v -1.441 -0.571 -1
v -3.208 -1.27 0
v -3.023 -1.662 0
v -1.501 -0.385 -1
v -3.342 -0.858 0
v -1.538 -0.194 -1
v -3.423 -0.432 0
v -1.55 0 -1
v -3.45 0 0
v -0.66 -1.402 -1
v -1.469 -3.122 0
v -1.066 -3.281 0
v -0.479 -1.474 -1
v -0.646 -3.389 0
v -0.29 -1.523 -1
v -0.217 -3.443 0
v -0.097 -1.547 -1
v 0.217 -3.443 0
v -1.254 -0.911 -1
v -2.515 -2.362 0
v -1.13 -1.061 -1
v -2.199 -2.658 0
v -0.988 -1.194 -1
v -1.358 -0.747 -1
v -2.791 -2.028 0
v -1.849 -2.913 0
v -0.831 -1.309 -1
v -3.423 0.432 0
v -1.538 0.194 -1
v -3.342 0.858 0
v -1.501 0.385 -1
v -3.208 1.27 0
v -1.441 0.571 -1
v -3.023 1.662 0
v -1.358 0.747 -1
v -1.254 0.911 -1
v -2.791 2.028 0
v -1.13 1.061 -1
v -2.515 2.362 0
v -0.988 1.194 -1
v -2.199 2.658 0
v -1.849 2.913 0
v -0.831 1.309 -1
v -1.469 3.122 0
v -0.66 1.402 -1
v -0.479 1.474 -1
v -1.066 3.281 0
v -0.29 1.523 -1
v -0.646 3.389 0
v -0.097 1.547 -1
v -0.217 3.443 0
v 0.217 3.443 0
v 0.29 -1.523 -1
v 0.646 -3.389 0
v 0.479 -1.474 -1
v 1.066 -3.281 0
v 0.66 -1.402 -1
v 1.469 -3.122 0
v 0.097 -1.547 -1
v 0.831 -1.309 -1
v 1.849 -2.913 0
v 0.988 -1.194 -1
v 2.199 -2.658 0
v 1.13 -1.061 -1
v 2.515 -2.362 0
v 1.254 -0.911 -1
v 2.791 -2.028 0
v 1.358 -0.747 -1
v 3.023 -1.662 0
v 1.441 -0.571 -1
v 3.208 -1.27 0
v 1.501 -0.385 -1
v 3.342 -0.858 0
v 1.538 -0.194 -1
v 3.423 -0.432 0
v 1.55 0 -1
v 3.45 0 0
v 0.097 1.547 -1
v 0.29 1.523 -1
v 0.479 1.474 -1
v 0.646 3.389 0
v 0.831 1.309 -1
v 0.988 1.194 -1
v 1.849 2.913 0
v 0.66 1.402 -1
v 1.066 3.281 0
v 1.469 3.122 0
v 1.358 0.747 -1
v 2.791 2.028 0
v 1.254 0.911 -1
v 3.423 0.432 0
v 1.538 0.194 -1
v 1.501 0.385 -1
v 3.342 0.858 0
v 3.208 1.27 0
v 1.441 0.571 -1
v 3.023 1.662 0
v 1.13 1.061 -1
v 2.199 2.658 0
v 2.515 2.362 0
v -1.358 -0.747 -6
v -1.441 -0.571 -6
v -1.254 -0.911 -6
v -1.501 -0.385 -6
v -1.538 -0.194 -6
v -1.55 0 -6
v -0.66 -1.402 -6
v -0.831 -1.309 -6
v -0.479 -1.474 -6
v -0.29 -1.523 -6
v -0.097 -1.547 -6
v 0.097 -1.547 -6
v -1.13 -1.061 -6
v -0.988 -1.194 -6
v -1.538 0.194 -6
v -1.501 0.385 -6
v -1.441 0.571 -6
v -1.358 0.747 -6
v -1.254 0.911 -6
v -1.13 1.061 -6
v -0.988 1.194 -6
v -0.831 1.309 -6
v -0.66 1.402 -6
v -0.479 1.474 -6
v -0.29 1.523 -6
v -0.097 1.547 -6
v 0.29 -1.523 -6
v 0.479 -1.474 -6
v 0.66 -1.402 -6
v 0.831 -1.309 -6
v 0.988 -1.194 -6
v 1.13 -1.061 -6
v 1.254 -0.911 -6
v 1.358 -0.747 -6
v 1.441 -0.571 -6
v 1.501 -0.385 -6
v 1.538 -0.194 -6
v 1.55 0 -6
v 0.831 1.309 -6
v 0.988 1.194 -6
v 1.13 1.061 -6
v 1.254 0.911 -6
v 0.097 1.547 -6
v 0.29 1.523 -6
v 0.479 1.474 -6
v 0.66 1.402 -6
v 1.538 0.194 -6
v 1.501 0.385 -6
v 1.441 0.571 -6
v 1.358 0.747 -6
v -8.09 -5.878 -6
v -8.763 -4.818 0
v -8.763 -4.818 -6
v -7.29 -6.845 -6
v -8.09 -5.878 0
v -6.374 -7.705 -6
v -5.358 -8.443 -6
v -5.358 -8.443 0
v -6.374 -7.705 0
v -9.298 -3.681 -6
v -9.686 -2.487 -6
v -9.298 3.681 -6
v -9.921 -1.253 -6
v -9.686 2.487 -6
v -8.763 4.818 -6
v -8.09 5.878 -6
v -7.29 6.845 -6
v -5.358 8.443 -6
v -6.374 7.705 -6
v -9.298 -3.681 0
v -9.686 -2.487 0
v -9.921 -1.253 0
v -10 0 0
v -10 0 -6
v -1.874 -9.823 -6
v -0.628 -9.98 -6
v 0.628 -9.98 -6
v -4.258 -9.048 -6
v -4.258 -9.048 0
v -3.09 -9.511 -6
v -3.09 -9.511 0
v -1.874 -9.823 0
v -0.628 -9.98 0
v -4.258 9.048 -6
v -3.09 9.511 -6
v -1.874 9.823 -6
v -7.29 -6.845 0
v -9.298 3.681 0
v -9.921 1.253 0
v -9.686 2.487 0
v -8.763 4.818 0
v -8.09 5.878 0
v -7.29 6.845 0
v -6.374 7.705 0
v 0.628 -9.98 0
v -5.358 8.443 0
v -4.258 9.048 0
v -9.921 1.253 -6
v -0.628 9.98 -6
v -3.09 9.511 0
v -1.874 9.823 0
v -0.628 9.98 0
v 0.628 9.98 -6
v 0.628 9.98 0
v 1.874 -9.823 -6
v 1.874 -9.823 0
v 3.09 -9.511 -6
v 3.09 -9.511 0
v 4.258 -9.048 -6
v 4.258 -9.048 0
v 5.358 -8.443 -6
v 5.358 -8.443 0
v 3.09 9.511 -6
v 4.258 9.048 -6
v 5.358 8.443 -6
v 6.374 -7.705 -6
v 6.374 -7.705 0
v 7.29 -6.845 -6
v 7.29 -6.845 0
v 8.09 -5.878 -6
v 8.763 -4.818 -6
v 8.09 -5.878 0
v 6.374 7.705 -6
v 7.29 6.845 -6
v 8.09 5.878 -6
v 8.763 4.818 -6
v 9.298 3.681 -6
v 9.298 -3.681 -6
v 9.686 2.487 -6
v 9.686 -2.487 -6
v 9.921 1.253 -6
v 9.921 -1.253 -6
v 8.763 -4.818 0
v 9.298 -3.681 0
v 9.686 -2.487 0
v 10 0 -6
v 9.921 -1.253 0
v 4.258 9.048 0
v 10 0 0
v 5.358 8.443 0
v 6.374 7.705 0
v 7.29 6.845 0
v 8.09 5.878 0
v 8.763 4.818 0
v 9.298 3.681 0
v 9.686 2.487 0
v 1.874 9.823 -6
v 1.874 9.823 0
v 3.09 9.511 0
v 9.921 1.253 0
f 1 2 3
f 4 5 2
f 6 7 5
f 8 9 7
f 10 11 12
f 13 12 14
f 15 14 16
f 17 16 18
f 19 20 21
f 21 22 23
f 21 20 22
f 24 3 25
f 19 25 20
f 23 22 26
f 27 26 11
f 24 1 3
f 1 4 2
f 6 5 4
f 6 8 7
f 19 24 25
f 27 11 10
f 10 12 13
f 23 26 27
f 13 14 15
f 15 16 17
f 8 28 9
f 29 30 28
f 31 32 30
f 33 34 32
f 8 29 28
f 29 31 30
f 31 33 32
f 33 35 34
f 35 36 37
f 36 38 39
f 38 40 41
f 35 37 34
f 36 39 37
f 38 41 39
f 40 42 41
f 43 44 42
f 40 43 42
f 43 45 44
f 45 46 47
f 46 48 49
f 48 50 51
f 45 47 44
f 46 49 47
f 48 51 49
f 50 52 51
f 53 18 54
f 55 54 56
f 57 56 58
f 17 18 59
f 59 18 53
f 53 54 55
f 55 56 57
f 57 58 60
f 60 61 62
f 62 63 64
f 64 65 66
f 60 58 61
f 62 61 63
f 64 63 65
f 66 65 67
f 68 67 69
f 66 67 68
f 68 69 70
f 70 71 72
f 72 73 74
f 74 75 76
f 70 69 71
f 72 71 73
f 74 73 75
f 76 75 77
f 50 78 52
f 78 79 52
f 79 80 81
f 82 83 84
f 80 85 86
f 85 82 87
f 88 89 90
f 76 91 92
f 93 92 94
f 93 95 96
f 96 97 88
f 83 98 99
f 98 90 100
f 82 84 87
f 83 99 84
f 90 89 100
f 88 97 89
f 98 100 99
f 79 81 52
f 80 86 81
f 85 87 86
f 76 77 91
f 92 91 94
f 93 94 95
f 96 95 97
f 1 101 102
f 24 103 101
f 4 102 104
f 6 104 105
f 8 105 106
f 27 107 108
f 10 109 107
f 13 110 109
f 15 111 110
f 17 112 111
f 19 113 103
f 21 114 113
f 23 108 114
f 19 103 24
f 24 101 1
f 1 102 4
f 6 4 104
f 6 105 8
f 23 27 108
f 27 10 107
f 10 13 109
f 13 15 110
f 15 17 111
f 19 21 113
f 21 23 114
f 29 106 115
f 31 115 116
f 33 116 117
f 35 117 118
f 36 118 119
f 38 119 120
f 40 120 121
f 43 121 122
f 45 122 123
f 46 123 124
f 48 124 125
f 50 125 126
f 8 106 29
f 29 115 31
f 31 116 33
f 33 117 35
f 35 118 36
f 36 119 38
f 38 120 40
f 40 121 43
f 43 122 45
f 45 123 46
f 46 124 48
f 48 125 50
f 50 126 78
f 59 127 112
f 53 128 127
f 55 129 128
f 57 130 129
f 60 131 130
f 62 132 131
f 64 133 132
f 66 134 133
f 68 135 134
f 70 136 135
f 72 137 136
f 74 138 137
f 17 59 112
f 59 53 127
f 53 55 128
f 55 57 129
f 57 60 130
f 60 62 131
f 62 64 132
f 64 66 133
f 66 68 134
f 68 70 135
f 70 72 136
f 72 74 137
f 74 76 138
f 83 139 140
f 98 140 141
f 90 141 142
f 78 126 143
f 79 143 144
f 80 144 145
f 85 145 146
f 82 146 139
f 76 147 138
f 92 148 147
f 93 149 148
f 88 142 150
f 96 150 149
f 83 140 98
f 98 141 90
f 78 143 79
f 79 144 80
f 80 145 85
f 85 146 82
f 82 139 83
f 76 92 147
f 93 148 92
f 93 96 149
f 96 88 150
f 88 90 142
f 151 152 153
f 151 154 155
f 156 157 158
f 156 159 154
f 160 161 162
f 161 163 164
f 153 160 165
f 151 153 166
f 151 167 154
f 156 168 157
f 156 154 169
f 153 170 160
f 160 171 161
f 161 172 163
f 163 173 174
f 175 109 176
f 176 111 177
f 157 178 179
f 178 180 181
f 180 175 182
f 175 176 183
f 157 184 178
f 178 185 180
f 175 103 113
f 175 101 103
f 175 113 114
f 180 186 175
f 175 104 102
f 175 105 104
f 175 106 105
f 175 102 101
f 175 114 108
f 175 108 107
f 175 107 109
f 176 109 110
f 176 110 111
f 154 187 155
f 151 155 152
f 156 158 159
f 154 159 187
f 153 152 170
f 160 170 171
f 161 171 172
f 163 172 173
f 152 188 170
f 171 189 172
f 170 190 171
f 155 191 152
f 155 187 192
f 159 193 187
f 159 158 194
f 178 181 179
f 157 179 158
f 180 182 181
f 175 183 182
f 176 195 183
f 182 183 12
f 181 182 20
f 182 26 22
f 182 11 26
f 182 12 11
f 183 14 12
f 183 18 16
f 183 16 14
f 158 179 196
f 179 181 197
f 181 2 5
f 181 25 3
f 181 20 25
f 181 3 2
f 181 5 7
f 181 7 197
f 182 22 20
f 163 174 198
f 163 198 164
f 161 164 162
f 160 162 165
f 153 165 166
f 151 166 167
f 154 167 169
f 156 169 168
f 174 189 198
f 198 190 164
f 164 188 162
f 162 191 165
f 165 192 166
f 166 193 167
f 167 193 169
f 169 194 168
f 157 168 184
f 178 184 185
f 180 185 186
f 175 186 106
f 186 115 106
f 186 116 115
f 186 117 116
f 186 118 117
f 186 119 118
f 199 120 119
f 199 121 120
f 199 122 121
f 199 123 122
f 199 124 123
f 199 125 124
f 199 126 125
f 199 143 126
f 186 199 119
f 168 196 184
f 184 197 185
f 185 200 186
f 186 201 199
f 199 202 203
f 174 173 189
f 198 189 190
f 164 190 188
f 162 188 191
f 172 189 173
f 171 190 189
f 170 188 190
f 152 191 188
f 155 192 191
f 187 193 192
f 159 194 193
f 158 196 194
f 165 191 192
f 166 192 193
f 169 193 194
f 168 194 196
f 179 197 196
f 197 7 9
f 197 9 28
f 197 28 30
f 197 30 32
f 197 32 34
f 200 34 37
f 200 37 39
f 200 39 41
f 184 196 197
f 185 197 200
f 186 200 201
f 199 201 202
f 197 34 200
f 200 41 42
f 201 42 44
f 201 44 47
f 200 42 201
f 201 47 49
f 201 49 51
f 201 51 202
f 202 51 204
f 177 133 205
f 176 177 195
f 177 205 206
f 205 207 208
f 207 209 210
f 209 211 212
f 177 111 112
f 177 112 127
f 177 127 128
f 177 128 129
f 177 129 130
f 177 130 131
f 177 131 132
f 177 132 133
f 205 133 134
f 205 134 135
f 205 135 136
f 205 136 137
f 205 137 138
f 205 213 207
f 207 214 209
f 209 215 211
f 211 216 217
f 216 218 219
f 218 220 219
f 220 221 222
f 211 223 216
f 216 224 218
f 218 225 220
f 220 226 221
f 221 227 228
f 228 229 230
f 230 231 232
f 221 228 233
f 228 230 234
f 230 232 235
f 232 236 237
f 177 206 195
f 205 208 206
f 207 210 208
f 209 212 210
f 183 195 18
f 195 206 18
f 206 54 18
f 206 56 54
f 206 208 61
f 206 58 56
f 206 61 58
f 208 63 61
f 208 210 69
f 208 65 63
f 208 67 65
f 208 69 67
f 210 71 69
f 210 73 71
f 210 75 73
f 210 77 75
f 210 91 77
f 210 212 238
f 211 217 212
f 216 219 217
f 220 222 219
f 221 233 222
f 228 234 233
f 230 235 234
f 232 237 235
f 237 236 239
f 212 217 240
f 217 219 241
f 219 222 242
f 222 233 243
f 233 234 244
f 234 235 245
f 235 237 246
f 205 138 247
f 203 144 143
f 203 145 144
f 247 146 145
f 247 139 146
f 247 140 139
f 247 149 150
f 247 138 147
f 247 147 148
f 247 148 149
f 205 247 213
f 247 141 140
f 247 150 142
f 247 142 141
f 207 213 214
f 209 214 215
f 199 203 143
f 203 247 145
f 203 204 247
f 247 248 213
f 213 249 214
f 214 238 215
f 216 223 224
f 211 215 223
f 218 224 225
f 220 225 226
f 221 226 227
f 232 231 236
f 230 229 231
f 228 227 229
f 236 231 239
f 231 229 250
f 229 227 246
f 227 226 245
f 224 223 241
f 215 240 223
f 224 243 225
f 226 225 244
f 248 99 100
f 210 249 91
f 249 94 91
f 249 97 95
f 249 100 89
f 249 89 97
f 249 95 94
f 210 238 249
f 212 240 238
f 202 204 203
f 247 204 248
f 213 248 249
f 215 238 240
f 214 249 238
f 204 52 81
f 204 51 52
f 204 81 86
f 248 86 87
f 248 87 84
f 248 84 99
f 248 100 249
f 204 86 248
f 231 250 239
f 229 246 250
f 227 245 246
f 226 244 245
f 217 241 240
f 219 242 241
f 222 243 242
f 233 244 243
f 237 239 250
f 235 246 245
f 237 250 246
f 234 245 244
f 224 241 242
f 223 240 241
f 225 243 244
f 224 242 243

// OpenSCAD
$fn = 50;


difference() {
	union() {
		translate(v = [0, 0, -6.0000000000]) {
			cylinder(h = 6, r = 10.0000000000);
		}
	}
	union() {
		translate(v = [0, 0, 0]) {
			rotate(a = [0, 0, 0]) {
				difference() {
					union() {
						translate(v = [0, 0, -9.0000000000]) {
							cylinder(h = 9, r = 1.2500000000);
						}
						translate(v = [0, 0, -1.0000000000]) {
							cylinder(h = 1.0000000000, r1 = 1.5500000000, r2 = 3.4500000000);
						}
						translate(v = [0, 0, -9.0000000000]) {
							cylinder(h = 9, r = 1.5500000000);
						}
						translate(v = [0, 0, -9.0000000000]) {
							cylinder(h = 9, r = 1.2500000000);
						}
					}
					union();
				}
			}
		}
	}
}
